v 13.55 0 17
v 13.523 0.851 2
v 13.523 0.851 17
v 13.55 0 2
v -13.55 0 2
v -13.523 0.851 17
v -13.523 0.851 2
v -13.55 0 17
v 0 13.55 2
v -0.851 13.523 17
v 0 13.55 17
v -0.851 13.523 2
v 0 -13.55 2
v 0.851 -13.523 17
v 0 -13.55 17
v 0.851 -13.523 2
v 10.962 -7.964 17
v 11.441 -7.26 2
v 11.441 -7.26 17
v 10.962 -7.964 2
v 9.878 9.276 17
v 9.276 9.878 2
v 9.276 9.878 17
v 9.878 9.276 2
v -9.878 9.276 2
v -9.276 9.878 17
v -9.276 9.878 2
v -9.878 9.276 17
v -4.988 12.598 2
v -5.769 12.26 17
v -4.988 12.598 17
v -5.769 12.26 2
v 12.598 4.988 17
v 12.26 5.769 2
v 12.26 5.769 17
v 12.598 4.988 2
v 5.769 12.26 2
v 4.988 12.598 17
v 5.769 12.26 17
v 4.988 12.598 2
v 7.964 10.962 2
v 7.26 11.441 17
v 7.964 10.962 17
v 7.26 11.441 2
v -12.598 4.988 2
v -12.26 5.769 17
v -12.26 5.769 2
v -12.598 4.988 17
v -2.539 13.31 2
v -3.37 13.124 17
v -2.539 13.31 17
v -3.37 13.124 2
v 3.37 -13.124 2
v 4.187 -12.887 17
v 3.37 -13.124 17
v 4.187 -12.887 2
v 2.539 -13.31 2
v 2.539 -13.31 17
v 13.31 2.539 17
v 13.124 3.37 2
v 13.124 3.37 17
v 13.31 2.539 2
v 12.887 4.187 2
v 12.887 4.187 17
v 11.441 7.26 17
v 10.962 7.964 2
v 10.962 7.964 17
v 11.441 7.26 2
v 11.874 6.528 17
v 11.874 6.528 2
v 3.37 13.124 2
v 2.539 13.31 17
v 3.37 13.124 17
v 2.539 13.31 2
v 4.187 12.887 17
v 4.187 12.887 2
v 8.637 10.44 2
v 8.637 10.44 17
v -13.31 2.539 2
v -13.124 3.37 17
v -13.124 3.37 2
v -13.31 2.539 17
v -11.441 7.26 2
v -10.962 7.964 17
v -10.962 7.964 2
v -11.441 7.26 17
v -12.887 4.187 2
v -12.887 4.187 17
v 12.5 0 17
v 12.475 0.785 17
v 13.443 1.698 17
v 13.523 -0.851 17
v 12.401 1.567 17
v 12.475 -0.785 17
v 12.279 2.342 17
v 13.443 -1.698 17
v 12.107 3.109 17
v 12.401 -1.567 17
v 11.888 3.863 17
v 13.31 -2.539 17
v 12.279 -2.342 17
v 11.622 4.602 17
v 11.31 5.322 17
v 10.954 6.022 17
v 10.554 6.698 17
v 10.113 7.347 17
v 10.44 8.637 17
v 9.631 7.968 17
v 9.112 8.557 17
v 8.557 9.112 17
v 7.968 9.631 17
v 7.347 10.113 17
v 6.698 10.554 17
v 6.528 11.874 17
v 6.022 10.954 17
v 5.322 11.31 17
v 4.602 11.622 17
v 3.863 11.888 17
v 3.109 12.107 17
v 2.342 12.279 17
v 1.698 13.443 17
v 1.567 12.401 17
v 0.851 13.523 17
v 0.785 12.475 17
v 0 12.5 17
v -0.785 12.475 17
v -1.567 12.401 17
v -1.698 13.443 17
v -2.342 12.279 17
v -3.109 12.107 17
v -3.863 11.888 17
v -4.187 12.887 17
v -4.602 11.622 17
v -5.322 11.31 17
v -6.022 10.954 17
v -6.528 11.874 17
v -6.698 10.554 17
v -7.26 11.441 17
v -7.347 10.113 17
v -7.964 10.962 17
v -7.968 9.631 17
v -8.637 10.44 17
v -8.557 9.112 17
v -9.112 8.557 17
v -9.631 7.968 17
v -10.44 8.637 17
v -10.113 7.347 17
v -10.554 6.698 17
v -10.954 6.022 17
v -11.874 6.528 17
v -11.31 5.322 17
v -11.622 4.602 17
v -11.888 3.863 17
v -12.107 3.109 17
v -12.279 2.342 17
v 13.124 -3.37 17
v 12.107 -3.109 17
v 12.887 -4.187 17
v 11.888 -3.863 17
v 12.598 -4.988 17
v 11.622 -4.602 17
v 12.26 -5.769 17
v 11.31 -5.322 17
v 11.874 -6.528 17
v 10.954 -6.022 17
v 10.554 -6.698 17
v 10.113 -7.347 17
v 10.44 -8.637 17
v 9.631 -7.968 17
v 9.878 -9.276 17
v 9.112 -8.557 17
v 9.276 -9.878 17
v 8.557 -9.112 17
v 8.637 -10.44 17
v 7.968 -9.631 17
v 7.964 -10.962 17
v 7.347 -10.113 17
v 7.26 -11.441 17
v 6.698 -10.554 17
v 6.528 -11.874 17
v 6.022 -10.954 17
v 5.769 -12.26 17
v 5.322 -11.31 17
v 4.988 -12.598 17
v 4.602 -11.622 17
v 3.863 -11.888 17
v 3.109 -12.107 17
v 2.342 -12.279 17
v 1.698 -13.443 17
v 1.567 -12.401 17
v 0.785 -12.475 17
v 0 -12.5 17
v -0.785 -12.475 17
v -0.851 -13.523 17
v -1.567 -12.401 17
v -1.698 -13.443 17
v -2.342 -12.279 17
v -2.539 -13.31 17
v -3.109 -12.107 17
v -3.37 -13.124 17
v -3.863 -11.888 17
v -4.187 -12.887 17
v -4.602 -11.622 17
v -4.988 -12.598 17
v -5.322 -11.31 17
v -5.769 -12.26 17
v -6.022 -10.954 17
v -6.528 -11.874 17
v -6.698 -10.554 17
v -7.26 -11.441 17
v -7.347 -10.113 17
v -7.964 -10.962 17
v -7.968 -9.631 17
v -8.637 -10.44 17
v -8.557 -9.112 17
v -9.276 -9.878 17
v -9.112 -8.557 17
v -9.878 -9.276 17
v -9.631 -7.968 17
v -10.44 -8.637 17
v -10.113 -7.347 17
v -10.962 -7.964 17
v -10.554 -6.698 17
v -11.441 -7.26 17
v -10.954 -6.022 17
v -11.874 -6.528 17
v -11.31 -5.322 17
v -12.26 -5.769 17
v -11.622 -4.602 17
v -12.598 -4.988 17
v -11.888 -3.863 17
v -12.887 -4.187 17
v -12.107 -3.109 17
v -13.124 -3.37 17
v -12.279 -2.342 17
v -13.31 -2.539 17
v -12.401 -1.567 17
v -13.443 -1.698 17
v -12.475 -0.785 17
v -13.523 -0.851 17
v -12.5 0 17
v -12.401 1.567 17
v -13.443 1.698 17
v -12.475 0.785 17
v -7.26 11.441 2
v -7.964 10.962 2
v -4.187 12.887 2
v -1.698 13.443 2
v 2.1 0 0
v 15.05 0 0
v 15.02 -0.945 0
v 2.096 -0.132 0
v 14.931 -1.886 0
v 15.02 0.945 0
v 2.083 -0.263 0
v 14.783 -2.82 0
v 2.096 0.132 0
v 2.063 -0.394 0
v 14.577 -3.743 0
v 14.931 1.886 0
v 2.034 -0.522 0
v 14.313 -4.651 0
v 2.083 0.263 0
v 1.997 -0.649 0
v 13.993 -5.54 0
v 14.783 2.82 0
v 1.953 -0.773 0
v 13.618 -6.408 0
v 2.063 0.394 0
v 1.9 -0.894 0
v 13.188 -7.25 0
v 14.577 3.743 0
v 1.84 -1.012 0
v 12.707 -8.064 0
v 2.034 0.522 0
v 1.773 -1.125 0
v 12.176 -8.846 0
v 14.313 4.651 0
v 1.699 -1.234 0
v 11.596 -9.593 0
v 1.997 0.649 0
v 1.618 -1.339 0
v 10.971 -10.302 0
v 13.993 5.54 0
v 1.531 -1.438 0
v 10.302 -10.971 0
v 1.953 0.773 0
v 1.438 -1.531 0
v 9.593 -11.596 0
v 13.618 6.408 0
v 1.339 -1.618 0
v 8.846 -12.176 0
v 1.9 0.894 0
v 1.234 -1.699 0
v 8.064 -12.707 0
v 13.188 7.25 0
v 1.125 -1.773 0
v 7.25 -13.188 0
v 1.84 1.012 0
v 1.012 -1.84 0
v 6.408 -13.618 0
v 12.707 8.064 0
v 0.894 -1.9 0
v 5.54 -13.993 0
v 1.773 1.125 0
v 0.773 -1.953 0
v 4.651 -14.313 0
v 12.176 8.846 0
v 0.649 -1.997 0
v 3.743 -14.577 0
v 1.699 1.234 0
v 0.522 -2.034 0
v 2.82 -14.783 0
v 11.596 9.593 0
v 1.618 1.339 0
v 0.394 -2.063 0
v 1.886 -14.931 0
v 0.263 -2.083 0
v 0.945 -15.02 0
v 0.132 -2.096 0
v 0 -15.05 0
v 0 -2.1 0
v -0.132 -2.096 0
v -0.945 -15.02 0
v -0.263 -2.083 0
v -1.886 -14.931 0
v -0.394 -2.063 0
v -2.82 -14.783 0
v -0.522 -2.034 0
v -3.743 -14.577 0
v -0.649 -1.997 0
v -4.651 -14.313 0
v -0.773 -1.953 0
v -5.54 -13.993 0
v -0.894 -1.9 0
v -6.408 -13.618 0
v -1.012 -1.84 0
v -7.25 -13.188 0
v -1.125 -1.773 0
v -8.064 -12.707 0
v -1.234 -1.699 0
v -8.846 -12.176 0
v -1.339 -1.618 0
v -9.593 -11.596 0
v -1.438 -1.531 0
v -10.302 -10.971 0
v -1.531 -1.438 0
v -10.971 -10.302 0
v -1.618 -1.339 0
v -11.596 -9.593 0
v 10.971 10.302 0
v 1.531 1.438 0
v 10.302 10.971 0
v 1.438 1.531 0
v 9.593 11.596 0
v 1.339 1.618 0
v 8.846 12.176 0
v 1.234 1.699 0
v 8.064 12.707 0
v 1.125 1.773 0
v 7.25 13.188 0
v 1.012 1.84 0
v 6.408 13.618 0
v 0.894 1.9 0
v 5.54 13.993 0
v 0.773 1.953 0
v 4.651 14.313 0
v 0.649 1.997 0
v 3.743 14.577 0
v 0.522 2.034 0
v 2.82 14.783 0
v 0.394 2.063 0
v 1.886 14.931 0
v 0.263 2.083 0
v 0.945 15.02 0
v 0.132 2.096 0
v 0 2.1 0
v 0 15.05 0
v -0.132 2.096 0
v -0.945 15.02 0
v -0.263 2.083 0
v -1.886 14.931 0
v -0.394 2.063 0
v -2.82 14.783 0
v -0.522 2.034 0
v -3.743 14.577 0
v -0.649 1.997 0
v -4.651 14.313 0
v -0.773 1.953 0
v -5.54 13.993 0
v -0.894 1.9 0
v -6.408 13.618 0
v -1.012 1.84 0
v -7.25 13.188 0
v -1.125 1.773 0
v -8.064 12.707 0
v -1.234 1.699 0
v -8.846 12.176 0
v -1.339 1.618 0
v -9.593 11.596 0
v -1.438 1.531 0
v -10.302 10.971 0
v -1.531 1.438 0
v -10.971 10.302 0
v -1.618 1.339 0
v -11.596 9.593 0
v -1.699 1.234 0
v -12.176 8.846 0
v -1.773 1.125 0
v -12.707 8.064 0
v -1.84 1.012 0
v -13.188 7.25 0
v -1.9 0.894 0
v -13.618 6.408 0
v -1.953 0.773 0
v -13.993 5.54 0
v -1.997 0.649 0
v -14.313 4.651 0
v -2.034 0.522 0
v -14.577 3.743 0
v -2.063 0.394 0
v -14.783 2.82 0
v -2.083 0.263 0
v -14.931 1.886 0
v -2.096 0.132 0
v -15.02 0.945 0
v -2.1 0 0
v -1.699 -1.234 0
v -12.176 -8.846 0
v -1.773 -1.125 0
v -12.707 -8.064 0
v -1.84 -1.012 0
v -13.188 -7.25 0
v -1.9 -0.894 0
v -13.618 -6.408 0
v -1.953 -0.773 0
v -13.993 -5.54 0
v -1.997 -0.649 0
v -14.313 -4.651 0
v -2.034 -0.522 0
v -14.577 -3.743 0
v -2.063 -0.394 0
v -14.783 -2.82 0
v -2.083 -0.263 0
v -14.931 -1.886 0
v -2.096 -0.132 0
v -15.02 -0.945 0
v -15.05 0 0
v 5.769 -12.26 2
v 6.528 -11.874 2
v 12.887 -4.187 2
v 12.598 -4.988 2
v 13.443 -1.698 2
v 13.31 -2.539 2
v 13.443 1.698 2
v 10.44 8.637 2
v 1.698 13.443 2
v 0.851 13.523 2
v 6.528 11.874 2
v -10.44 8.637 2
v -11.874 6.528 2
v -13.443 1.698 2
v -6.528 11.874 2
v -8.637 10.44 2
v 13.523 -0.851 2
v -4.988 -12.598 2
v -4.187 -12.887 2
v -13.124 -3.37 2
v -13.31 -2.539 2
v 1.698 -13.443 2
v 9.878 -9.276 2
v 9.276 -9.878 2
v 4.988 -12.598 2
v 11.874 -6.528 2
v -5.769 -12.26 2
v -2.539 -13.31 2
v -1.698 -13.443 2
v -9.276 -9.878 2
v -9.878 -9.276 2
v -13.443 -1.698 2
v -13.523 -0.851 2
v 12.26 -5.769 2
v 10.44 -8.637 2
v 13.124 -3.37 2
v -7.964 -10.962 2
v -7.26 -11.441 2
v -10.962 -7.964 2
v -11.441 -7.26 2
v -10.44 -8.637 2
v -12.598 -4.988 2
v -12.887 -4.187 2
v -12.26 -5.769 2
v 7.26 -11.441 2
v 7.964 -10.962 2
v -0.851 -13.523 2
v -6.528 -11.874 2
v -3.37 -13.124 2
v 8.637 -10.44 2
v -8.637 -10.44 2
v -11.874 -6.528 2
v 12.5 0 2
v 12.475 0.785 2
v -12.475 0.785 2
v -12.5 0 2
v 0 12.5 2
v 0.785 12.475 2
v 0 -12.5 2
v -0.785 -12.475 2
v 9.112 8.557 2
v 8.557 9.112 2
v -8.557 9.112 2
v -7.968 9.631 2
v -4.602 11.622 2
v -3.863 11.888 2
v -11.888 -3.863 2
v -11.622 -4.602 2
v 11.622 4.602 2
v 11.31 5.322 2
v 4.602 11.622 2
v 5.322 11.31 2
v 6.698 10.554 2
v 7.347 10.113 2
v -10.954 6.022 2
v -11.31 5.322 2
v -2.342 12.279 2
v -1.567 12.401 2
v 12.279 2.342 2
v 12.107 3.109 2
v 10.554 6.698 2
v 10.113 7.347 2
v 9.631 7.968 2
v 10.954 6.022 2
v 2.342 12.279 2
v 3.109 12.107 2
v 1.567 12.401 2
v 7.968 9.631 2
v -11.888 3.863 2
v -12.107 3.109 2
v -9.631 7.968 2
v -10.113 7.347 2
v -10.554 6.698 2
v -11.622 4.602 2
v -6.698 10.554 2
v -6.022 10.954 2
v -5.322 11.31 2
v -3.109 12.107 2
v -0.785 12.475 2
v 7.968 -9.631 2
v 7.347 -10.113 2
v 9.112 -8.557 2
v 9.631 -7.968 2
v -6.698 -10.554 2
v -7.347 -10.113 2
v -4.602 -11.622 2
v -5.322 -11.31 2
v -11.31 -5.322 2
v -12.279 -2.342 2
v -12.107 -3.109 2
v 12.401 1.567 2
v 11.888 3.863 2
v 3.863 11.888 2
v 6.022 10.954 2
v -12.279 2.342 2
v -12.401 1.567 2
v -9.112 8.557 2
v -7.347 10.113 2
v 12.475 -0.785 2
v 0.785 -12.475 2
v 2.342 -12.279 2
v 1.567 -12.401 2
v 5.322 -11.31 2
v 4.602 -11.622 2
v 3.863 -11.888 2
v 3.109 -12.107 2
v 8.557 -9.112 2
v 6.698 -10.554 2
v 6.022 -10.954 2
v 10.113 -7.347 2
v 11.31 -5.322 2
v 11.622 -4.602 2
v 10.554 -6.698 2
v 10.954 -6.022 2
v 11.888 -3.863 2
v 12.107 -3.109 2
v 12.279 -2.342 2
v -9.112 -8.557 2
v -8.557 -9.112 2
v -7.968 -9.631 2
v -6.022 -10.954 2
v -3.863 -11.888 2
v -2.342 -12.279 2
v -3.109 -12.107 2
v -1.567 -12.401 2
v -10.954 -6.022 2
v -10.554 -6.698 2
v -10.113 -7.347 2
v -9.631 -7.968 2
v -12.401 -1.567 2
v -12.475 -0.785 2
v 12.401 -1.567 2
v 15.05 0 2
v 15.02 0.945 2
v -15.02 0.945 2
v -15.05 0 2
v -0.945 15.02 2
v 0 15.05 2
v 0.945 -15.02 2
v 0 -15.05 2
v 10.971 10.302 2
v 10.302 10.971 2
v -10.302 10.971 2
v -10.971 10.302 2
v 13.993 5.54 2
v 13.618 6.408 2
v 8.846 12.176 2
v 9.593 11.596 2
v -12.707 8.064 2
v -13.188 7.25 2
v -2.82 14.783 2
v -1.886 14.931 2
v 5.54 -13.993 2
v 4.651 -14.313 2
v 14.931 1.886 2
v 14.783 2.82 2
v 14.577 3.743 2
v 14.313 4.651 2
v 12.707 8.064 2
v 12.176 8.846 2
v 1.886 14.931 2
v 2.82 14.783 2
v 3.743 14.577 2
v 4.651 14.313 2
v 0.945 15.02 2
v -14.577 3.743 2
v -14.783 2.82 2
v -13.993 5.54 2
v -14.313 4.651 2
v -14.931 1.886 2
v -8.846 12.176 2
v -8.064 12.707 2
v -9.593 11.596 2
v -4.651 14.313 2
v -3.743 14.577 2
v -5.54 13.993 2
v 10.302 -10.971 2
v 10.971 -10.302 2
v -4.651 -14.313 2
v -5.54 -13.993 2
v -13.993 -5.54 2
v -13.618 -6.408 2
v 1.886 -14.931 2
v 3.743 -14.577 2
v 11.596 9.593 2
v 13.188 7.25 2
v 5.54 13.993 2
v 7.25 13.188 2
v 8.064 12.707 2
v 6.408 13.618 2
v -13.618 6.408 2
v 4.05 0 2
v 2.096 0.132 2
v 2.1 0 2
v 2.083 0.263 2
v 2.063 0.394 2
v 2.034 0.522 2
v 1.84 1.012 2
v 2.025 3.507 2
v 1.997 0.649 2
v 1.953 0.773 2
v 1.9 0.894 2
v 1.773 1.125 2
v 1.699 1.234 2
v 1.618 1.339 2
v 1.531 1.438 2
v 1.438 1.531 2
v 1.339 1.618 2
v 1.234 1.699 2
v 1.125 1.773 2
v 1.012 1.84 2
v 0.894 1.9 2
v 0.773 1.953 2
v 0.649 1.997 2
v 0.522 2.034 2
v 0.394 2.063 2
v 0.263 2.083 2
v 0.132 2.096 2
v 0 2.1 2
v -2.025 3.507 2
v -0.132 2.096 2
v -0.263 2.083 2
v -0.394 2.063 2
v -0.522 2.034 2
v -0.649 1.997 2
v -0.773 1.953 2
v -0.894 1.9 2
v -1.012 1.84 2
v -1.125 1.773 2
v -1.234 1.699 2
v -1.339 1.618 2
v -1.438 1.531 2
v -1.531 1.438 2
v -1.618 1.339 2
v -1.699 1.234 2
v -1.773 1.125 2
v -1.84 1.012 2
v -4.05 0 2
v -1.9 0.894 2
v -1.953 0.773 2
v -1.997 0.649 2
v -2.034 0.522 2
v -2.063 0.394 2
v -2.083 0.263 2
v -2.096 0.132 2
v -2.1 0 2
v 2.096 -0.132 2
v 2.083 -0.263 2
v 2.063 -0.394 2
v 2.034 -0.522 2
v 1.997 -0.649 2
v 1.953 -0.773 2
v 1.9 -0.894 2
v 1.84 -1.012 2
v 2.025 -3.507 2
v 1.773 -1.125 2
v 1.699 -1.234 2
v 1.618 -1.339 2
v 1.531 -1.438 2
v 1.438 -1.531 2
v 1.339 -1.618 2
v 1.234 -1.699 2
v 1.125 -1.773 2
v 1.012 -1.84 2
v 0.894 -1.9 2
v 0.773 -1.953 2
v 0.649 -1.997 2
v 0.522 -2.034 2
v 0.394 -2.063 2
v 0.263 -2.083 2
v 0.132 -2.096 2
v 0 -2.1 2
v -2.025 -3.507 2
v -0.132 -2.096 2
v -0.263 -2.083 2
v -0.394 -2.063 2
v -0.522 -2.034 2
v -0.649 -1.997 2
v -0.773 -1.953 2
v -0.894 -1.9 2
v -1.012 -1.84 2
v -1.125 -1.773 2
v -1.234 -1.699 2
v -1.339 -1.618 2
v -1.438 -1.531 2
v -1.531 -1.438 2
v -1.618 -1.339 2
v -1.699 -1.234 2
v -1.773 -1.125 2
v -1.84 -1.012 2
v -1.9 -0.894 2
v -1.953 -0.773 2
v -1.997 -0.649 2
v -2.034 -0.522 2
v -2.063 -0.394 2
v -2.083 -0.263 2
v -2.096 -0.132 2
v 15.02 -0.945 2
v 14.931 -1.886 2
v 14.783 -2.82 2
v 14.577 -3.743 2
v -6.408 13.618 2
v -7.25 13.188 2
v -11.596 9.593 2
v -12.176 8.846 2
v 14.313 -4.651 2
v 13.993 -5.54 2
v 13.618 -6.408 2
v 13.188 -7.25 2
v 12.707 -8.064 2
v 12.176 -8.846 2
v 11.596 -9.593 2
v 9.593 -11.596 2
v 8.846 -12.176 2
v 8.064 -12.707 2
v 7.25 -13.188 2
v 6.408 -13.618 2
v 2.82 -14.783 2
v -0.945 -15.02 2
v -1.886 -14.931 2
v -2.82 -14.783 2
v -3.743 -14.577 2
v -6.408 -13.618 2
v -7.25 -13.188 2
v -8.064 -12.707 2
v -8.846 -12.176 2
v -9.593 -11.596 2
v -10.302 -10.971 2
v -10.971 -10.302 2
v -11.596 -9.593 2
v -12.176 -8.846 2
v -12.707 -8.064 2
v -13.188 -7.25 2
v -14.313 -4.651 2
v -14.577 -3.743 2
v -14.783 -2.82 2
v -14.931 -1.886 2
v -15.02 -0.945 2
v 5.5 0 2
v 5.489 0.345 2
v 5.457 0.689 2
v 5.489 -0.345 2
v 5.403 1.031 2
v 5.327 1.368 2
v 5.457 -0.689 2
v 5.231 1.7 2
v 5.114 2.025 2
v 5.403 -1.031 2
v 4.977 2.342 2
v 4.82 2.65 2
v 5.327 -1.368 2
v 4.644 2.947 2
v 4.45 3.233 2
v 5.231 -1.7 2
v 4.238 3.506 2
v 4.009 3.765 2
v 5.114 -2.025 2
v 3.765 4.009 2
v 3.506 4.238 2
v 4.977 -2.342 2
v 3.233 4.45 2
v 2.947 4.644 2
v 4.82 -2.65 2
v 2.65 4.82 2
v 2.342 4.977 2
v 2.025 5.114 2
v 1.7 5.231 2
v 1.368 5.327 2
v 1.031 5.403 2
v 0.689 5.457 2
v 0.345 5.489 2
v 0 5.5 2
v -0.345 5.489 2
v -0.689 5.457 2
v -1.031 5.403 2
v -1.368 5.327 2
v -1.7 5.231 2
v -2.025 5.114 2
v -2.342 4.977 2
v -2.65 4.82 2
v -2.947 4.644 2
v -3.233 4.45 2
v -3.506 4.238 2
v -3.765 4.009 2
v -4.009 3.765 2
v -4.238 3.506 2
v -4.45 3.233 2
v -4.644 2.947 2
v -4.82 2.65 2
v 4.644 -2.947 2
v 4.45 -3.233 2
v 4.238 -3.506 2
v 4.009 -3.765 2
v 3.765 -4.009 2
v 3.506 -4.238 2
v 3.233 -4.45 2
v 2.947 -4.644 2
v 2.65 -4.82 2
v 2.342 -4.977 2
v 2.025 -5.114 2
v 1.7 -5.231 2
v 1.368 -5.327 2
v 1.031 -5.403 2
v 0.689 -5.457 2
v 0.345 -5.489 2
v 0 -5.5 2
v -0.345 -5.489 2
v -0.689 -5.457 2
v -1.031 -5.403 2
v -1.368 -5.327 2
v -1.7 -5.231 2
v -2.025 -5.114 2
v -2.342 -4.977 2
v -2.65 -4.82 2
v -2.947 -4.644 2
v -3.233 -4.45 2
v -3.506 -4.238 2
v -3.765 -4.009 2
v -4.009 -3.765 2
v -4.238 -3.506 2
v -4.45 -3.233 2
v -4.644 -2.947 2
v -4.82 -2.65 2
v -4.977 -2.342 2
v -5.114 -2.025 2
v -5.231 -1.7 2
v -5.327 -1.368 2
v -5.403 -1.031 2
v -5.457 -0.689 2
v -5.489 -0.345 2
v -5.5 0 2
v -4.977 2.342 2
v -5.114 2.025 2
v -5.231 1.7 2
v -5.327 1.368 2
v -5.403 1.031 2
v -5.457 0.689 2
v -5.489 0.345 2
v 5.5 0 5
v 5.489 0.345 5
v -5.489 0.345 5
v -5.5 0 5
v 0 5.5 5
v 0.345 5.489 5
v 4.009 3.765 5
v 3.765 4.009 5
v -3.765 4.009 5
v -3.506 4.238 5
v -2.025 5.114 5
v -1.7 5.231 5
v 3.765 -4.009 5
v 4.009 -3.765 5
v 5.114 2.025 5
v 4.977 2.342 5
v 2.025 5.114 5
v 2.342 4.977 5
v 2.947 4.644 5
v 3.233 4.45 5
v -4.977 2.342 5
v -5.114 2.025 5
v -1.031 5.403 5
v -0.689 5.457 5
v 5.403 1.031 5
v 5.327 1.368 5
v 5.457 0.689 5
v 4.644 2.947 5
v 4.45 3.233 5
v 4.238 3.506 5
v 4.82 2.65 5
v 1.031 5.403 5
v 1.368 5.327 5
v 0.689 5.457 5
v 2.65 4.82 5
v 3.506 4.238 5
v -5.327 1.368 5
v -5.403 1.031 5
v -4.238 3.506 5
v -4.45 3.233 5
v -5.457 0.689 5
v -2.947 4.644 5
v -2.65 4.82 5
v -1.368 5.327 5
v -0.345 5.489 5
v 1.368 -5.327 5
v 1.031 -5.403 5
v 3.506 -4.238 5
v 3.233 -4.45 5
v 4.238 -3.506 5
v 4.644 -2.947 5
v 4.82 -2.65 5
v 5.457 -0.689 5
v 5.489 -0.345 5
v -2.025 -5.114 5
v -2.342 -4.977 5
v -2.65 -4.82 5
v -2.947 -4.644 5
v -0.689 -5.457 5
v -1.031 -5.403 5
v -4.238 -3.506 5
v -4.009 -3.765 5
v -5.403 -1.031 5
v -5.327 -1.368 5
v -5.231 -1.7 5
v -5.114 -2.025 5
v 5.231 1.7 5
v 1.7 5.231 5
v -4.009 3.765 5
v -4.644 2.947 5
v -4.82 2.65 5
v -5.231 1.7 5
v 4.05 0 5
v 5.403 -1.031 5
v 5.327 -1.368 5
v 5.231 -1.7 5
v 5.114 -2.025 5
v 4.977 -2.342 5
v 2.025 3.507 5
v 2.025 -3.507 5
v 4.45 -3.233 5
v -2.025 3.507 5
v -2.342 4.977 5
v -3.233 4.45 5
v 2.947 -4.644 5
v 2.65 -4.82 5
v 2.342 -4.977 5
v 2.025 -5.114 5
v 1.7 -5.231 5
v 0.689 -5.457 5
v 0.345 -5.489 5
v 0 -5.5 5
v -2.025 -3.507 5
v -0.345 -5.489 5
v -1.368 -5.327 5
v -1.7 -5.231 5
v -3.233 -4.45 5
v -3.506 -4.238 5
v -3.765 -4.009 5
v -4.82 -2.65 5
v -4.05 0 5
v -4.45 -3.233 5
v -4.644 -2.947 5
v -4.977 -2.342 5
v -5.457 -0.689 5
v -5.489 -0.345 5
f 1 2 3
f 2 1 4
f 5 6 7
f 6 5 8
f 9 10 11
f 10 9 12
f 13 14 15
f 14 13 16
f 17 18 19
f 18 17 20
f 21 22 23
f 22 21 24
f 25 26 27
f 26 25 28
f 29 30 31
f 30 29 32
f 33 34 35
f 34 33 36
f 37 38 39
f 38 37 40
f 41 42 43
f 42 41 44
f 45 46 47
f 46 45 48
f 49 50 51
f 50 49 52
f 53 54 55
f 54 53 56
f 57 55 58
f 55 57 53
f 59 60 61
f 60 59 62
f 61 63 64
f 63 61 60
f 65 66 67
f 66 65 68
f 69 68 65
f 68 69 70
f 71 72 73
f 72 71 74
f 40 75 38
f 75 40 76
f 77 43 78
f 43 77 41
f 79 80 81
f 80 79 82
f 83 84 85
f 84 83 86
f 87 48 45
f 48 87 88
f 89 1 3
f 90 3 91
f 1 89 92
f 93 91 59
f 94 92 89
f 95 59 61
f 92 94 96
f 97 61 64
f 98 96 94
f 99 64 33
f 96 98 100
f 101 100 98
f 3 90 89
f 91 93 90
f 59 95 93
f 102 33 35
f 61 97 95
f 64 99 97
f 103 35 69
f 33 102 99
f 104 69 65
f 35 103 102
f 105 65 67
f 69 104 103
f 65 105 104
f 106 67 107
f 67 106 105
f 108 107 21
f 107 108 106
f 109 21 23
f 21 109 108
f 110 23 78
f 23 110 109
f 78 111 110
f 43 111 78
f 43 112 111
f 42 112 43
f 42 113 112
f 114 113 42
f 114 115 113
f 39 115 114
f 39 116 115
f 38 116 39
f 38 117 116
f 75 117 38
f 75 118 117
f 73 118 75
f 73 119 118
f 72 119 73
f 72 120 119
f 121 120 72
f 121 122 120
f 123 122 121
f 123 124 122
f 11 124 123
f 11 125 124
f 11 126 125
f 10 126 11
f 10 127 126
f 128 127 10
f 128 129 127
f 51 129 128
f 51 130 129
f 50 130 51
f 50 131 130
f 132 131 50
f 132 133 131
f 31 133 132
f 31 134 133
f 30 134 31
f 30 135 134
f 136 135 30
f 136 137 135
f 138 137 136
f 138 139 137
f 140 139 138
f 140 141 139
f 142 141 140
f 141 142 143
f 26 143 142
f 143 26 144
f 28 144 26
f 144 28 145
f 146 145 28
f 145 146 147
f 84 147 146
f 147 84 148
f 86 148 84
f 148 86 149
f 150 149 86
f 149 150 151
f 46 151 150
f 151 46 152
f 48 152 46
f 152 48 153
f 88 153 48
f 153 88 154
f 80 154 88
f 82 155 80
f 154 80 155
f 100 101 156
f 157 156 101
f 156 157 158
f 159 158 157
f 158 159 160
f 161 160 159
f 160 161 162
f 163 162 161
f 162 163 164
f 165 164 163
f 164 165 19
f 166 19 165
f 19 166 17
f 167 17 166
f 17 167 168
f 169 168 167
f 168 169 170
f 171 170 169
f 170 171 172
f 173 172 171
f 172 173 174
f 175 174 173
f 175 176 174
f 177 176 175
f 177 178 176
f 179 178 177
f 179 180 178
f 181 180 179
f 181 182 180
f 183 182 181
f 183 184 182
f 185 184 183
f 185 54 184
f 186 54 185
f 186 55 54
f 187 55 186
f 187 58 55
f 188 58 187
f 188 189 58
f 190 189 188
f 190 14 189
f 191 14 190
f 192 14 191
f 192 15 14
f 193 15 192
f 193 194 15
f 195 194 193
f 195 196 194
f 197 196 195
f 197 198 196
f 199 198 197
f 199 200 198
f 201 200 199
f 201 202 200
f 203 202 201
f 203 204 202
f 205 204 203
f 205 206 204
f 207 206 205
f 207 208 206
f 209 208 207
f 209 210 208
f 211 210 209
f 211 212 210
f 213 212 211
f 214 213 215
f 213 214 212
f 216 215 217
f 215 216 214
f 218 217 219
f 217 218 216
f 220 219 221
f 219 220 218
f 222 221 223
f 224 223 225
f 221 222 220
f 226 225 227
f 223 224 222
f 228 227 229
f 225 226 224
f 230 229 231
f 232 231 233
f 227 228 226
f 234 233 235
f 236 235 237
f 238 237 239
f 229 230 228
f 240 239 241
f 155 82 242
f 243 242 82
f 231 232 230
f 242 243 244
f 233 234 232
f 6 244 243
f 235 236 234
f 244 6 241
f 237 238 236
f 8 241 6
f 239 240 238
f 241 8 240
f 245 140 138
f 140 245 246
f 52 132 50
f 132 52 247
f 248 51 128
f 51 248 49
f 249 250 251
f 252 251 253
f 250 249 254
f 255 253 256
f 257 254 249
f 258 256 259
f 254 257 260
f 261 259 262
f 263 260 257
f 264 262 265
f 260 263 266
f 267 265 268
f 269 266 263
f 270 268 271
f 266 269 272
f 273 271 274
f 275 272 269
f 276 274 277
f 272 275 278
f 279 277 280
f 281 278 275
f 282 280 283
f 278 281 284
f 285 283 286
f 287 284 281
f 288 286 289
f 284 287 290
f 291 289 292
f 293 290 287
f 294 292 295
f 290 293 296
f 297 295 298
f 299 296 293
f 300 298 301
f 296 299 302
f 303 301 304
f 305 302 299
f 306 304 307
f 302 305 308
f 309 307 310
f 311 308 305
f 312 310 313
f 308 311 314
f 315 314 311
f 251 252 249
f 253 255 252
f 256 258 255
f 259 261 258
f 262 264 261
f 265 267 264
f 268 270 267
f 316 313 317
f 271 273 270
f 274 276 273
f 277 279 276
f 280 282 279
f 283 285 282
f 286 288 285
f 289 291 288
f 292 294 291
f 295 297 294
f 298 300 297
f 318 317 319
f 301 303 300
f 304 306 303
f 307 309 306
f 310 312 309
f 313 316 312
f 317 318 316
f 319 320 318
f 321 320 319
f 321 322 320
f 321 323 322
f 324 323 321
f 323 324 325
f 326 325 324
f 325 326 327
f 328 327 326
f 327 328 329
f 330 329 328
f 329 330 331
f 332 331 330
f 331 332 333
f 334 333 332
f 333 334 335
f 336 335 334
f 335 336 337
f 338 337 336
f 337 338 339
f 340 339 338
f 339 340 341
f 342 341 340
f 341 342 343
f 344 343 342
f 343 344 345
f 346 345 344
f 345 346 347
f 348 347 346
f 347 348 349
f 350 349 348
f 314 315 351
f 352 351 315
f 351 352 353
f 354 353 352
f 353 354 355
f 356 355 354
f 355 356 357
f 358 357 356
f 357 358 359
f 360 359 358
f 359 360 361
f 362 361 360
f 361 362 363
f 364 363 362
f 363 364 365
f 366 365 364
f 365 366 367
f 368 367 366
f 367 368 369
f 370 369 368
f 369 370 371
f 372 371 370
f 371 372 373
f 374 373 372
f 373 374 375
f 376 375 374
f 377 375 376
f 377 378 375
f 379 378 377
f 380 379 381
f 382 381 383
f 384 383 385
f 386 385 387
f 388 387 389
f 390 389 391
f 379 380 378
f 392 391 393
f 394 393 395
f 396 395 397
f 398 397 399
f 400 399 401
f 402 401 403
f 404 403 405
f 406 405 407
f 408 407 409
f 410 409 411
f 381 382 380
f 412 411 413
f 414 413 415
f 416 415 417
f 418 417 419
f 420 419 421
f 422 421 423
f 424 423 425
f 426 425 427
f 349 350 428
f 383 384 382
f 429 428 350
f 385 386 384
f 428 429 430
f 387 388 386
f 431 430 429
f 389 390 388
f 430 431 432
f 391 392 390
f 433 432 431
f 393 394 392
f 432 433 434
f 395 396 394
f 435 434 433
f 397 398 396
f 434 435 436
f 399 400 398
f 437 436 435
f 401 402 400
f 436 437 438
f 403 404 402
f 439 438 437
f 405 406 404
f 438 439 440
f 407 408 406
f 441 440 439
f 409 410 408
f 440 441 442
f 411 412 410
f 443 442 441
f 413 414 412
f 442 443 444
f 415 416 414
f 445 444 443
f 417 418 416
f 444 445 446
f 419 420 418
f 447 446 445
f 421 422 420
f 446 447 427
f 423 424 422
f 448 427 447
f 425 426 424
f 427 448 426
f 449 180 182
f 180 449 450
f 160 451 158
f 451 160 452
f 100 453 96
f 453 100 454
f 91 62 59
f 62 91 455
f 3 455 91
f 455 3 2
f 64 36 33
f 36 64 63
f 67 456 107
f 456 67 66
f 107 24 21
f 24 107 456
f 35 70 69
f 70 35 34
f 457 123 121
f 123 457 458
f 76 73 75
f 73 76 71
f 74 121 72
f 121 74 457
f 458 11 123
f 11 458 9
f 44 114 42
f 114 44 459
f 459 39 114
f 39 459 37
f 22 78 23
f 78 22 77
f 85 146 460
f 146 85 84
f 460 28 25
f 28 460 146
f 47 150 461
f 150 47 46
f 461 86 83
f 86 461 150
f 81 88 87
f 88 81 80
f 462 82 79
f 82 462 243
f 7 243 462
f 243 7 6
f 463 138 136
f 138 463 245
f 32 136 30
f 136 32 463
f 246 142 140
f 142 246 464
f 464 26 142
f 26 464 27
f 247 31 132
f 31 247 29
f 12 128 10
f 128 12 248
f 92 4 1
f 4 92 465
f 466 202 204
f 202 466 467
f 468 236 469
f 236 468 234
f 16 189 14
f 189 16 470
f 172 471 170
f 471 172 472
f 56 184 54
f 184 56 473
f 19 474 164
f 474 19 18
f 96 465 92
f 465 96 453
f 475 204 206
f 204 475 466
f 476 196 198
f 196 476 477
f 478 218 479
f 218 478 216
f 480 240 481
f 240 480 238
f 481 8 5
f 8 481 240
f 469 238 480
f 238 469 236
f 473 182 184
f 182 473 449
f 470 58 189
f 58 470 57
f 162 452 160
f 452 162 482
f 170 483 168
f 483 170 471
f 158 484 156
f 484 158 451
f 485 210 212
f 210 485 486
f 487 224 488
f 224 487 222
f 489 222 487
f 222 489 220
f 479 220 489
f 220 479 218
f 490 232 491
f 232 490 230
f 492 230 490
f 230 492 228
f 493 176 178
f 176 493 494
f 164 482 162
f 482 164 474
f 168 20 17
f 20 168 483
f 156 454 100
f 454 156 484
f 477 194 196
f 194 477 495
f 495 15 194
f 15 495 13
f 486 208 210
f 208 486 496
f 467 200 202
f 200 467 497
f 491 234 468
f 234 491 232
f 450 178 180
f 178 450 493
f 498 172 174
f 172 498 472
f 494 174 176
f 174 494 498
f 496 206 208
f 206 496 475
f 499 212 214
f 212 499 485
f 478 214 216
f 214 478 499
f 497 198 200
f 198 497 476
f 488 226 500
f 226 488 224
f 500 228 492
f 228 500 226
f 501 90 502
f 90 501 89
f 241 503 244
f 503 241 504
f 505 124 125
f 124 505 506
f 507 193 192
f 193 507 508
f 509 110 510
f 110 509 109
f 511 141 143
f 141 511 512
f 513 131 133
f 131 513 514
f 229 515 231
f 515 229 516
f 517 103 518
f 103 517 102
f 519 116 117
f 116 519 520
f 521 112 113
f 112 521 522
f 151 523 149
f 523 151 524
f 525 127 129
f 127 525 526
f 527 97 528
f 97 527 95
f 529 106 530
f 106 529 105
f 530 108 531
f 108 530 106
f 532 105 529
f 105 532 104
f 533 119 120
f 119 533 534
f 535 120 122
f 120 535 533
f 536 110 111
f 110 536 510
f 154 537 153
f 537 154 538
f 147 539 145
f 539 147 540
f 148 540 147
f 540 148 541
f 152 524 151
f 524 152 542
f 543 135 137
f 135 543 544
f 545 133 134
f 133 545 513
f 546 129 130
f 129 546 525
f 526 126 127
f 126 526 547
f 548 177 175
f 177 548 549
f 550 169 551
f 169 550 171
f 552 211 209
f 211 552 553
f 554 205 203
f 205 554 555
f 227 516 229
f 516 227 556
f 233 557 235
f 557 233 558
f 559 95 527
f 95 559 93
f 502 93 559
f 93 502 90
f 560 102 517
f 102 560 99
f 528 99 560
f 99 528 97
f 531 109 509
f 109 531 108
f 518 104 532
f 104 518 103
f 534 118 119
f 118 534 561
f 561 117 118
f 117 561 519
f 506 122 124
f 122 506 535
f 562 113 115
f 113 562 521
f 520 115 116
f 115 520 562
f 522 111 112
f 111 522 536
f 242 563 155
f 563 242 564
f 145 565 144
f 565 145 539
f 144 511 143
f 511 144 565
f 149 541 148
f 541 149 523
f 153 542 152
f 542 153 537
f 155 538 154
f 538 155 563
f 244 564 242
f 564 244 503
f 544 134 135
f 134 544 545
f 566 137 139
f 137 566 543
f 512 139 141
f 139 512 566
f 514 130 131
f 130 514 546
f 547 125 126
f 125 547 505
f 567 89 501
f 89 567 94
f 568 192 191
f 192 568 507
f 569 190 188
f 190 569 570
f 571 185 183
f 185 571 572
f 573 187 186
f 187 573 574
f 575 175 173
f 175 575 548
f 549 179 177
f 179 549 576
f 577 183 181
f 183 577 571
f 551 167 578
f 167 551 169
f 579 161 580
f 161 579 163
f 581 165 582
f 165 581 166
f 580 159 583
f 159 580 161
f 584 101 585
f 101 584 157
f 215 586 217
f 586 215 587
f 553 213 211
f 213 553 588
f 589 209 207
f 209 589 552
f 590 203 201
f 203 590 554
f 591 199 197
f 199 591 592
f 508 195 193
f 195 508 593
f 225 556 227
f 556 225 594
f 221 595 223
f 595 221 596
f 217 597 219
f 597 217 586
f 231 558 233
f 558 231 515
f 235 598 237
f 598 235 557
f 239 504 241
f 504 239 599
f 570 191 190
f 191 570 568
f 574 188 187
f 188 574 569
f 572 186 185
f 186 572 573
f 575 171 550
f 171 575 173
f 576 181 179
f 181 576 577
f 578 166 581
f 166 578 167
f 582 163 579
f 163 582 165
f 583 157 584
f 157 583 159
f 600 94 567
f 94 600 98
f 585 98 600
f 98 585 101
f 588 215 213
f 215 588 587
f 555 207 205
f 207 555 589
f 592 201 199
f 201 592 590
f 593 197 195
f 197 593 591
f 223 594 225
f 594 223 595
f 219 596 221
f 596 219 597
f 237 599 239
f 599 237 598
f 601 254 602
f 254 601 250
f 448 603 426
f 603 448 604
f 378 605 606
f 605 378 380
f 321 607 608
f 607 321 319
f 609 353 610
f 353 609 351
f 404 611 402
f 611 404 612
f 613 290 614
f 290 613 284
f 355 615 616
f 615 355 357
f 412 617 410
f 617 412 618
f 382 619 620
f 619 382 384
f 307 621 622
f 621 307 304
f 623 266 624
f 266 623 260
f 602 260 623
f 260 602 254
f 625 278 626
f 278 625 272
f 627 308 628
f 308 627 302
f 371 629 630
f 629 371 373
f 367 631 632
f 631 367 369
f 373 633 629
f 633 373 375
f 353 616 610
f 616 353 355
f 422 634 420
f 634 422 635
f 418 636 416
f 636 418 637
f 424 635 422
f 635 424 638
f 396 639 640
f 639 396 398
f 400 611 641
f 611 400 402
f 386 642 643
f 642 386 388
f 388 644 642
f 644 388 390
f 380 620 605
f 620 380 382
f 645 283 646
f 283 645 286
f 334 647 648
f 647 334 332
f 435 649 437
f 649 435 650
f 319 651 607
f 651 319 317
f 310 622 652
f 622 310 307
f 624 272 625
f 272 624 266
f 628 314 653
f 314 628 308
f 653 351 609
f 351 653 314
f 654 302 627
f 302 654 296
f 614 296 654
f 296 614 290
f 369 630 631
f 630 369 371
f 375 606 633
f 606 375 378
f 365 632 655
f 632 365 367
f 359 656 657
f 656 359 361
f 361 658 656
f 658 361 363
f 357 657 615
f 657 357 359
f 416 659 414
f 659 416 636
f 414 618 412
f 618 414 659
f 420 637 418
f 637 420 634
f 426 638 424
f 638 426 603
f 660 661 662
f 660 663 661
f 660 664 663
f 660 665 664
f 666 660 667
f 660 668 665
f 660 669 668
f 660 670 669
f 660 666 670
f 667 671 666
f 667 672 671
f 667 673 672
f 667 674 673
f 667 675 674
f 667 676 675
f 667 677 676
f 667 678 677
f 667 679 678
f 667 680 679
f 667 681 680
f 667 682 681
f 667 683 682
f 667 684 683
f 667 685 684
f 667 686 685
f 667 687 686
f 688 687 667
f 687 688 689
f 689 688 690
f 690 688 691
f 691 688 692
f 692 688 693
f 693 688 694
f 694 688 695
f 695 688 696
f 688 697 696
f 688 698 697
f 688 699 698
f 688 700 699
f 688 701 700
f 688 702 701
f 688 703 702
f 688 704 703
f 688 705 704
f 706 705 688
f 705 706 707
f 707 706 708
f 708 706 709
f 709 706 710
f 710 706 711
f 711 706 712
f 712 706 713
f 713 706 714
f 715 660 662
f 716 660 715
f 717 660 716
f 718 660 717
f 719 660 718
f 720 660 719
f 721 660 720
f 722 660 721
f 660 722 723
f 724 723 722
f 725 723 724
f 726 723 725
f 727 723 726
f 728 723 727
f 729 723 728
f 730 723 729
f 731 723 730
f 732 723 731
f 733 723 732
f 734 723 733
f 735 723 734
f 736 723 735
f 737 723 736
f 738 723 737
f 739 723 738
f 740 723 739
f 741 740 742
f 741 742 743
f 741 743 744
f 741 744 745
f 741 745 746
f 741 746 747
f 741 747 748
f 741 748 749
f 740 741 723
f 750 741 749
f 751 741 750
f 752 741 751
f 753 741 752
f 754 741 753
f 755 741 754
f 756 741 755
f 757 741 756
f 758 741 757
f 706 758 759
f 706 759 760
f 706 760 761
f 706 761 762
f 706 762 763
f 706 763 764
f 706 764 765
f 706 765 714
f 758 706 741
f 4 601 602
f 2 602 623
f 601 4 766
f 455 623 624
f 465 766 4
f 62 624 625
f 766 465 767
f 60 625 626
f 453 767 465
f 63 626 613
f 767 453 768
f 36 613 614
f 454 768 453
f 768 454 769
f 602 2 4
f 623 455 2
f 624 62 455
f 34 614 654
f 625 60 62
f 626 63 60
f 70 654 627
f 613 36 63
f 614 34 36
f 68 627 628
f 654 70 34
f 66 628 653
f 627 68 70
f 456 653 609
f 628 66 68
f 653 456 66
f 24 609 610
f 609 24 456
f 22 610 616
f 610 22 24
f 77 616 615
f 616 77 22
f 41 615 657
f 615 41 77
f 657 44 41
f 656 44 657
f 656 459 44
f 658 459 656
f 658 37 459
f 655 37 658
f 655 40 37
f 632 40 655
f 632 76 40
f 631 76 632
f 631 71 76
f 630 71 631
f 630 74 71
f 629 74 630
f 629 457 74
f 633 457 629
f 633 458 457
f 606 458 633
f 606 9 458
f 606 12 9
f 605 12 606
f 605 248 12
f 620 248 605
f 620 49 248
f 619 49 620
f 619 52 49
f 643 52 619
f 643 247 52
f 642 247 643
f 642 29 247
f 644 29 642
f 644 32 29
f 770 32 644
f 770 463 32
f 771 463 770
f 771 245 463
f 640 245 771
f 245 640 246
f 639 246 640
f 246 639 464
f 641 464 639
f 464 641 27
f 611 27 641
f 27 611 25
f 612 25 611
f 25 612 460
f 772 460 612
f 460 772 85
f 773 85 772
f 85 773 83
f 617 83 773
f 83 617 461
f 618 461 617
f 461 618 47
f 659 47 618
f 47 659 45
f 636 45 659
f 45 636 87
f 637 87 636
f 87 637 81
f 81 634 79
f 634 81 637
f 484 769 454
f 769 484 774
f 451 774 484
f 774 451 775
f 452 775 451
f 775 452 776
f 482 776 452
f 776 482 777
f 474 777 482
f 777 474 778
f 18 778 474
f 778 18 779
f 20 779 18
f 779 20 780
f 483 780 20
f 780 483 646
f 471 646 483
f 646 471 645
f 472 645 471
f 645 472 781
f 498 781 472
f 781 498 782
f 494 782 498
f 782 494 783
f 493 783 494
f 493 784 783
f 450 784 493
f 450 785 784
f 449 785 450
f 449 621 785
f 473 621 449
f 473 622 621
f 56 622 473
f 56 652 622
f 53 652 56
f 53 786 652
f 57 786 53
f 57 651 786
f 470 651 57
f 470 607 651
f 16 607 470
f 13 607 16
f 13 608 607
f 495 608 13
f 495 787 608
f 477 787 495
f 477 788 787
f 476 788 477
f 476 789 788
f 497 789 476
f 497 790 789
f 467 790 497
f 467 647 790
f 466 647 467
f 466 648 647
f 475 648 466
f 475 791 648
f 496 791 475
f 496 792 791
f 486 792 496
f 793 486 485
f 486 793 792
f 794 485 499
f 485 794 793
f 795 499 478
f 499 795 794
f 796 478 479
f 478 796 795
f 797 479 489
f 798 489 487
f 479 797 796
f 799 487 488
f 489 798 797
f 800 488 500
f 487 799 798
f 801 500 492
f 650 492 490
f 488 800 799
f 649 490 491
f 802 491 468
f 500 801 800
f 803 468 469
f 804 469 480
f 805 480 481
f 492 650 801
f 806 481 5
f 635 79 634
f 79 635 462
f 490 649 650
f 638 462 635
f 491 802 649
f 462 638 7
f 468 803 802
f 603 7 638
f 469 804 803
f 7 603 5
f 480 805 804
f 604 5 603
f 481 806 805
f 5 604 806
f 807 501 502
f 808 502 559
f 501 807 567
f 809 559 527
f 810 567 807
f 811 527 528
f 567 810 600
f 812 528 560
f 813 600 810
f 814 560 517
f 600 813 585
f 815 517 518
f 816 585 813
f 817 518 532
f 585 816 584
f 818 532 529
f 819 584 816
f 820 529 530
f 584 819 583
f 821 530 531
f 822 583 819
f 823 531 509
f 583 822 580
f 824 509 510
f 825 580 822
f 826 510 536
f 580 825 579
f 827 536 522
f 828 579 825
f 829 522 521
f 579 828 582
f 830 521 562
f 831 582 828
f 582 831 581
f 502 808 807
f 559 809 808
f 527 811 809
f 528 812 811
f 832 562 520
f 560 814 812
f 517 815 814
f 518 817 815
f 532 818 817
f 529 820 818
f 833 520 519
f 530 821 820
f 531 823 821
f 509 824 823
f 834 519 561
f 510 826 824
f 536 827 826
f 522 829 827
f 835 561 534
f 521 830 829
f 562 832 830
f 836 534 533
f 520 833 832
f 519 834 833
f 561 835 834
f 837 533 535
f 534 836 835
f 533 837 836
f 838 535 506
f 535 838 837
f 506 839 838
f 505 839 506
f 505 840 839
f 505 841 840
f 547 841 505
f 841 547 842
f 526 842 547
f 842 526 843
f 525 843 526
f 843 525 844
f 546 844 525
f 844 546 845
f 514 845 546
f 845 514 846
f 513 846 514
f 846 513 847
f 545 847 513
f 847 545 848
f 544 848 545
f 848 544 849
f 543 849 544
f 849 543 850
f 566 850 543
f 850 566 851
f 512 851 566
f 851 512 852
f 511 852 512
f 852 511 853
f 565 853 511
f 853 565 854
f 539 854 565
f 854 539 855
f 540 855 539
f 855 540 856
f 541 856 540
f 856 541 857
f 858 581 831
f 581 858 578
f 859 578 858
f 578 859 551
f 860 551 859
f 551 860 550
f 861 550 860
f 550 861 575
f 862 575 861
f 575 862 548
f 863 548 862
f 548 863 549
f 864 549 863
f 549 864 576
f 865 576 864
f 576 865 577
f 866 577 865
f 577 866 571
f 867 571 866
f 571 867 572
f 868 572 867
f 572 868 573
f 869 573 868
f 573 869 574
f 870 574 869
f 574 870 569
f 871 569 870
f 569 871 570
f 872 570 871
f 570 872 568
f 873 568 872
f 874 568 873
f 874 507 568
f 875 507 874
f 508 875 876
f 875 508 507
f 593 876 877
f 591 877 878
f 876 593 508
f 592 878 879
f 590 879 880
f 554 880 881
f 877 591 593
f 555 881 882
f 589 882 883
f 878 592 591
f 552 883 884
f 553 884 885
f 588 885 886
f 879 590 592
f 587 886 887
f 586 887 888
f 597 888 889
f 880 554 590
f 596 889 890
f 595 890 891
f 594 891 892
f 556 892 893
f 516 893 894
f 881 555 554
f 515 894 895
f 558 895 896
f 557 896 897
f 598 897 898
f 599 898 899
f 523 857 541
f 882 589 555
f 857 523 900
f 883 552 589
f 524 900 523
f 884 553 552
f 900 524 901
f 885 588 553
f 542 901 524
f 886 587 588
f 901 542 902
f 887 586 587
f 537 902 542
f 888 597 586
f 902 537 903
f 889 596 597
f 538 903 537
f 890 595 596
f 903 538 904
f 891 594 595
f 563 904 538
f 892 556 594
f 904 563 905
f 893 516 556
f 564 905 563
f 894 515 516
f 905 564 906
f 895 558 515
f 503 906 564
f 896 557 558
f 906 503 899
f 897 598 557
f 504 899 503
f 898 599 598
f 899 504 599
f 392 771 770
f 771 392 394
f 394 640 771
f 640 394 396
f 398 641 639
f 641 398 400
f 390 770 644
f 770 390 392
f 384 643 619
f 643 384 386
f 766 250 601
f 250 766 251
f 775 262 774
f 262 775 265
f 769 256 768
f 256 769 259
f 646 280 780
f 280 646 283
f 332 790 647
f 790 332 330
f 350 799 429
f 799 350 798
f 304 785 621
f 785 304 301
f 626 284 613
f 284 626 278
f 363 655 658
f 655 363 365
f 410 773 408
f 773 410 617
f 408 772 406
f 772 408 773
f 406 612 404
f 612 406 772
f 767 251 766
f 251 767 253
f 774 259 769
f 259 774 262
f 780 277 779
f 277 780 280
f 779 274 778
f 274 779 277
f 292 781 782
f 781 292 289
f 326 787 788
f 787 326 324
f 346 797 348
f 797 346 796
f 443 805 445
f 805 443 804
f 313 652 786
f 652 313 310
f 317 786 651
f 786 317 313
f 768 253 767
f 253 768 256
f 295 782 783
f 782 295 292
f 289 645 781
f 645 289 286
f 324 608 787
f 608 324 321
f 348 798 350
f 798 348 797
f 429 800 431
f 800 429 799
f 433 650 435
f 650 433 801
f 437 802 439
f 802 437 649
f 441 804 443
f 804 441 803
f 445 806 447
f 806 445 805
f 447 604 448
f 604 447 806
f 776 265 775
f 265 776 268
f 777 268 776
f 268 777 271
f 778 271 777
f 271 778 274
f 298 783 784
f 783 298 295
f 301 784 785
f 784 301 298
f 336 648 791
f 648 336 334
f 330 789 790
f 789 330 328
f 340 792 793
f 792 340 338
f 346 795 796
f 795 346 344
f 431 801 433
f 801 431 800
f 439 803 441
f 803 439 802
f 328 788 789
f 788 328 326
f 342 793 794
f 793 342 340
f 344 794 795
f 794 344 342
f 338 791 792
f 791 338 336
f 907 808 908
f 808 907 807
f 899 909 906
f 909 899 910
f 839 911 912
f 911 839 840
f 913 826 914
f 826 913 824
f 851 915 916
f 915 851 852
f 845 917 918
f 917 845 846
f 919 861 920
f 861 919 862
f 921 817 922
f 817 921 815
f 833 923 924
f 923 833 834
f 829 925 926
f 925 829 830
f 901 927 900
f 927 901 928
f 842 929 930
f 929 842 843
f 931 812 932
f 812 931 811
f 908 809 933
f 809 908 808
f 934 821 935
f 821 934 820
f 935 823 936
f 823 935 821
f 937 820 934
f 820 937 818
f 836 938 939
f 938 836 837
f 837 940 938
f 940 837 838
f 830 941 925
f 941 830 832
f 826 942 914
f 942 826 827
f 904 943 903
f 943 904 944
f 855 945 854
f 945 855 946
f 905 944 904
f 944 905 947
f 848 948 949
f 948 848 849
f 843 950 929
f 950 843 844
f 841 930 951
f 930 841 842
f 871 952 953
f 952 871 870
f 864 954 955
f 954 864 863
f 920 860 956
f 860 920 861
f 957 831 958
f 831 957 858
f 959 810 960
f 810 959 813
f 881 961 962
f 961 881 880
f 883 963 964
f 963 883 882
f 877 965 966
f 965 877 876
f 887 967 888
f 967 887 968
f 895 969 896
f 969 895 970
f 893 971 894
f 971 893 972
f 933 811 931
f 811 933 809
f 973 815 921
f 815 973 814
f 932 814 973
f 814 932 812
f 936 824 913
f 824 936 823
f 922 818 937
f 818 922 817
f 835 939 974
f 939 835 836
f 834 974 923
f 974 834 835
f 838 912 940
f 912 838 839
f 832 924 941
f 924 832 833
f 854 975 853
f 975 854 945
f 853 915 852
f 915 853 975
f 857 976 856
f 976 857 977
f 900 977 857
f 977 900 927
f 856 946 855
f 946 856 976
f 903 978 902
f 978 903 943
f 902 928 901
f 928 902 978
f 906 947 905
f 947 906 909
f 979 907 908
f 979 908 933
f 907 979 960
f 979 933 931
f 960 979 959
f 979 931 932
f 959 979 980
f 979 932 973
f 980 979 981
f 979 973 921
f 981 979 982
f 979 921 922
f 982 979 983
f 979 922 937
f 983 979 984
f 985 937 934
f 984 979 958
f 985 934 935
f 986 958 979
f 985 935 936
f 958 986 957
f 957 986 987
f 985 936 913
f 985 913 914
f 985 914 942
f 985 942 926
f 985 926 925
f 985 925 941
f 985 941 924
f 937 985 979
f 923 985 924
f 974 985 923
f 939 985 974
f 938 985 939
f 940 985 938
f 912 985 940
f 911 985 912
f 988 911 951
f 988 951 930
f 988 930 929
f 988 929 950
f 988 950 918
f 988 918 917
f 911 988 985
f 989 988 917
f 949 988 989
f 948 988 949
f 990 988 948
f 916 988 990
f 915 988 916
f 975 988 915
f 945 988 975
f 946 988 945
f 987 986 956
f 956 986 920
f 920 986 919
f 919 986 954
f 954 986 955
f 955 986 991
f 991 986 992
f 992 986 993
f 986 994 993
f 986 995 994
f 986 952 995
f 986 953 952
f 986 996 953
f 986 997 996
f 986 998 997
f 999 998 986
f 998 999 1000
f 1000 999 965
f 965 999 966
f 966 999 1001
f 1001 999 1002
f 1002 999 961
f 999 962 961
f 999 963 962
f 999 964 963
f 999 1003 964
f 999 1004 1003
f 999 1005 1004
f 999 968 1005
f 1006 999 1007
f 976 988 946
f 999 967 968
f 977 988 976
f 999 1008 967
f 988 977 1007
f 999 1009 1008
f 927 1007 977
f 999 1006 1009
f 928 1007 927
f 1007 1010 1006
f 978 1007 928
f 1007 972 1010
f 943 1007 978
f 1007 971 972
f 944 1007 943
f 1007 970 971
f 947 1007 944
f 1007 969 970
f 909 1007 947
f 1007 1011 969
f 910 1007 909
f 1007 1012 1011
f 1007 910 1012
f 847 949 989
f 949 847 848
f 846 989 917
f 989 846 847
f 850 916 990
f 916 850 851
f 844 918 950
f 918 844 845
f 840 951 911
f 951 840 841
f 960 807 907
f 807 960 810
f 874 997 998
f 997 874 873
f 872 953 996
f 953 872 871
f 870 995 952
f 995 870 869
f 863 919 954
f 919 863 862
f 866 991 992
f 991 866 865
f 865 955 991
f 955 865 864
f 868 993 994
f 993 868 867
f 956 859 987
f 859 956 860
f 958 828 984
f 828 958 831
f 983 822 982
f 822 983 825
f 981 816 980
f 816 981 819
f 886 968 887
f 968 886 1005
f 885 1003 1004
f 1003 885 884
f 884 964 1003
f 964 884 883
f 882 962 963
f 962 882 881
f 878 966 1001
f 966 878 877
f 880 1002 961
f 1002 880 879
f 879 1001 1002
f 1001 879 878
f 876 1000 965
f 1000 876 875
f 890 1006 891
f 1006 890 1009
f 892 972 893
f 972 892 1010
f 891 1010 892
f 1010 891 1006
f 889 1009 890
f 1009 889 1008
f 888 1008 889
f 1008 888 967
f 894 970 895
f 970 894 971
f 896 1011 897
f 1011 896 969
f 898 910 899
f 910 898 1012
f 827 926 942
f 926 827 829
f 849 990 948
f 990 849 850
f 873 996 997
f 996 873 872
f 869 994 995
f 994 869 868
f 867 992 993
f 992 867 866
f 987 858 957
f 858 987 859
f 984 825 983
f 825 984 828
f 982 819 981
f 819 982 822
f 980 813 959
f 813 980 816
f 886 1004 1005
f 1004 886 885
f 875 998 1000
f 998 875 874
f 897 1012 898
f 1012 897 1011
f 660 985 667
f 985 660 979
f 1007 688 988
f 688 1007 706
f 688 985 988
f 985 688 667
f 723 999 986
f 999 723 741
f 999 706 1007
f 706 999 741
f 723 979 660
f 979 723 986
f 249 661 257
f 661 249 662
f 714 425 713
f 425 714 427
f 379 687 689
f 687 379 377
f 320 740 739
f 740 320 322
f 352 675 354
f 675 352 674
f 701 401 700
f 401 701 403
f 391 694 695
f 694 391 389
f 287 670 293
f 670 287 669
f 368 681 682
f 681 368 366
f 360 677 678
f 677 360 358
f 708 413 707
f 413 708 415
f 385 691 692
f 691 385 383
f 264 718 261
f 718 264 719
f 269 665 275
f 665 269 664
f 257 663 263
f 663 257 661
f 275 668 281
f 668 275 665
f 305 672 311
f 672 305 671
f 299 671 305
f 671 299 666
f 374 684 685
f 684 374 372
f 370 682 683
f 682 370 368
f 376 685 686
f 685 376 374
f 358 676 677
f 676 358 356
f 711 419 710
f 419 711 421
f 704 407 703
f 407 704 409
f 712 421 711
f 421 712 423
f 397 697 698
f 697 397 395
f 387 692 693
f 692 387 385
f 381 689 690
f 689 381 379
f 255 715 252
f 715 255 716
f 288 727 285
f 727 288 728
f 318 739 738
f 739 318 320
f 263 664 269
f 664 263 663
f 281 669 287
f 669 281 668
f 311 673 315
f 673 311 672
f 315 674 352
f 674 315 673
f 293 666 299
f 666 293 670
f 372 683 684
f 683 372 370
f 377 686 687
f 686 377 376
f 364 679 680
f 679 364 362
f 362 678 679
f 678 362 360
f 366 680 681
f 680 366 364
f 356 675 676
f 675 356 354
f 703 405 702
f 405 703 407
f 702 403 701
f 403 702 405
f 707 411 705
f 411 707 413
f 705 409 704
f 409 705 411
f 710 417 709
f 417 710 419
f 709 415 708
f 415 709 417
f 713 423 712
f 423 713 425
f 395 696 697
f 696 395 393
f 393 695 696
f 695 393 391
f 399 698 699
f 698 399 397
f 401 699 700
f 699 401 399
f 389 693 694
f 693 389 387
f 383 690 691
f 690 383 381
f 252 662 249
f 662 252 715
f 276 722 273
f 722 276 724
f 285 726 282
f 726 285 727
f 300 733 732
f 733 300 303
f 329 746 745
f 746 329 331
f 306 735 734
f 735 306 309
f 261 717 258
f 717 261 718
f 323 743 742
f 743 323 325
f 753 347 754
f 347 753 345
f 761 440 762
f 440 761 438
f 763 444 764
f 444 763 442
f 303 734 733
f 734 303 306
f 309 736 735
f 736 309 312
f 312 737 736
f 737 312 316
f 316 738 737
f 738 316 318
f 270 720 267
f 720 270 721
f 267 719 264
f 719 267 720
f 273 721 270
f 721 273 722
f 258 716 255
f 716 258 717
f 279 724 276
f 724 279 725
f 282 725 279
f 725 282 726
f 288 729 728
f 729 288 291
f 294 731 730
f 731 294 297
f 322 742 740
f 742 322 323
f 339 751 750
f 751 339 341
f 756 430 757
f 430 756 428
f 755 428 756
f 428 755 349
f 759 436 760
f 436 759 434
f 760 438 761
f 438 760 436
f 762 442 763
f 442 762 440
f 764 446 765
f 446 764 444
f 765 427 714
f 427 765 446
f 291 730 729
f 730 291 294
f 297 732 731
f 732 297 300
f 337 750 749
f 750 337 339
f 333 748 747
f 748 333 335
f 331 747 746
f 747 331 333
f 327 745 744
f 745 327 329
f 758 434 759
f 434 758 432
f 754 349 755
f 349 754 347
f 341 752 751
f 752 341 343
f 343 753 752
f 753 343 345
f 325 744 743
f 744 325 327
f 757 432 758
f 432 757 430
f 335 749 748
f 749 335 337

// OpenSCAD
//
//  WifiLamp
//  part of Let's make series
//
//  The Cave, 2018
//  https://thecave.cz
//
//  Licensed under MIT License (see LICENSE file for details)
//

$ledHolderOuterDia = 27.1;
$ledHolderInnerDia = 25;
$ledHolderRimThickness = 1.5;
$ledHolderHeight = 15;

$baseThickness = 2;

$nutInsertDia = 11;
$nutDia = 8.1;
$nutThickness = 3;
$nutSides = 6;


module base() {
    difference() {
        cylinder(h=$baseThickness+$ledHolderHeight,d=$ledHolderOuterDia,$fn=100);
        translate([0,0,-1]) cylinder(h=$baseThickness+$ledHolderHeight+2,d=$ledHolderInnerDia,$fn=100);
    }
    cylinder(h=$baseThickness,d=$ledHolderOuterDia+$ledHolderRimThickness*2,$fn=100);
}

module nutInsert() {
    difference() {
        cylinder(d=$nutInsertDia,h=$nutThickness,$fn=100);
        translate([0,0,-1]) cylinder(d=$nutDia,h=$nutThickness+2,$fn=$nutSides);
    }
}

difference() {
    union() {
        base();
        translate([0,0,$baseThickness]) nutInsert();
    }
    translate([0,0,-1]) cylinder(d=4.2,h=$baseThickness+2,$fn=100);
}
